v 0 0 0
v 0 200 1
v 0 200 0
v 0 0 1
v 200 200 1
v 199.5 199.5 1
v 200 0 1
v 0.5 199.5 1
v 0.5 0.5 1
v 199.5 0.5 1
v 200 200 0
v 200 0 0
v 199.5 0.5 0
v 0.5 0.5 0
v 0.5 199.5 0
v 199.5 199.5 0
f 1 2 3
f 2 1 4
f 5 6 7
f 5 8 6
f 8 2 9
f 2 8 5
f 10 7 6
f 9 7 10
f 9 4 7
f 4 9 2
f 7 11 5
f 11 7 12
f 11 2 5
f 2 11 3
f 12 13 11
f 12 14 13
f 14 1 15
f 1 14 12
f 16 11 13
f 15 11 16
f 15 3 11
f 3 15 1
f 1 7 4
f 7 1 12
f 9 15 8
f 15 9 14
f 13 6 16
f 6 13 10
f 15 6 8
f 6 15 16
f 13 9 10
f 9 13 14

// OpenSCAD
difference(){
scale([1,1,0.005])
	cube(200);
translate([0.5,0.5,-0.10])
scale([1,1,0.3])
	cube(199);
}
